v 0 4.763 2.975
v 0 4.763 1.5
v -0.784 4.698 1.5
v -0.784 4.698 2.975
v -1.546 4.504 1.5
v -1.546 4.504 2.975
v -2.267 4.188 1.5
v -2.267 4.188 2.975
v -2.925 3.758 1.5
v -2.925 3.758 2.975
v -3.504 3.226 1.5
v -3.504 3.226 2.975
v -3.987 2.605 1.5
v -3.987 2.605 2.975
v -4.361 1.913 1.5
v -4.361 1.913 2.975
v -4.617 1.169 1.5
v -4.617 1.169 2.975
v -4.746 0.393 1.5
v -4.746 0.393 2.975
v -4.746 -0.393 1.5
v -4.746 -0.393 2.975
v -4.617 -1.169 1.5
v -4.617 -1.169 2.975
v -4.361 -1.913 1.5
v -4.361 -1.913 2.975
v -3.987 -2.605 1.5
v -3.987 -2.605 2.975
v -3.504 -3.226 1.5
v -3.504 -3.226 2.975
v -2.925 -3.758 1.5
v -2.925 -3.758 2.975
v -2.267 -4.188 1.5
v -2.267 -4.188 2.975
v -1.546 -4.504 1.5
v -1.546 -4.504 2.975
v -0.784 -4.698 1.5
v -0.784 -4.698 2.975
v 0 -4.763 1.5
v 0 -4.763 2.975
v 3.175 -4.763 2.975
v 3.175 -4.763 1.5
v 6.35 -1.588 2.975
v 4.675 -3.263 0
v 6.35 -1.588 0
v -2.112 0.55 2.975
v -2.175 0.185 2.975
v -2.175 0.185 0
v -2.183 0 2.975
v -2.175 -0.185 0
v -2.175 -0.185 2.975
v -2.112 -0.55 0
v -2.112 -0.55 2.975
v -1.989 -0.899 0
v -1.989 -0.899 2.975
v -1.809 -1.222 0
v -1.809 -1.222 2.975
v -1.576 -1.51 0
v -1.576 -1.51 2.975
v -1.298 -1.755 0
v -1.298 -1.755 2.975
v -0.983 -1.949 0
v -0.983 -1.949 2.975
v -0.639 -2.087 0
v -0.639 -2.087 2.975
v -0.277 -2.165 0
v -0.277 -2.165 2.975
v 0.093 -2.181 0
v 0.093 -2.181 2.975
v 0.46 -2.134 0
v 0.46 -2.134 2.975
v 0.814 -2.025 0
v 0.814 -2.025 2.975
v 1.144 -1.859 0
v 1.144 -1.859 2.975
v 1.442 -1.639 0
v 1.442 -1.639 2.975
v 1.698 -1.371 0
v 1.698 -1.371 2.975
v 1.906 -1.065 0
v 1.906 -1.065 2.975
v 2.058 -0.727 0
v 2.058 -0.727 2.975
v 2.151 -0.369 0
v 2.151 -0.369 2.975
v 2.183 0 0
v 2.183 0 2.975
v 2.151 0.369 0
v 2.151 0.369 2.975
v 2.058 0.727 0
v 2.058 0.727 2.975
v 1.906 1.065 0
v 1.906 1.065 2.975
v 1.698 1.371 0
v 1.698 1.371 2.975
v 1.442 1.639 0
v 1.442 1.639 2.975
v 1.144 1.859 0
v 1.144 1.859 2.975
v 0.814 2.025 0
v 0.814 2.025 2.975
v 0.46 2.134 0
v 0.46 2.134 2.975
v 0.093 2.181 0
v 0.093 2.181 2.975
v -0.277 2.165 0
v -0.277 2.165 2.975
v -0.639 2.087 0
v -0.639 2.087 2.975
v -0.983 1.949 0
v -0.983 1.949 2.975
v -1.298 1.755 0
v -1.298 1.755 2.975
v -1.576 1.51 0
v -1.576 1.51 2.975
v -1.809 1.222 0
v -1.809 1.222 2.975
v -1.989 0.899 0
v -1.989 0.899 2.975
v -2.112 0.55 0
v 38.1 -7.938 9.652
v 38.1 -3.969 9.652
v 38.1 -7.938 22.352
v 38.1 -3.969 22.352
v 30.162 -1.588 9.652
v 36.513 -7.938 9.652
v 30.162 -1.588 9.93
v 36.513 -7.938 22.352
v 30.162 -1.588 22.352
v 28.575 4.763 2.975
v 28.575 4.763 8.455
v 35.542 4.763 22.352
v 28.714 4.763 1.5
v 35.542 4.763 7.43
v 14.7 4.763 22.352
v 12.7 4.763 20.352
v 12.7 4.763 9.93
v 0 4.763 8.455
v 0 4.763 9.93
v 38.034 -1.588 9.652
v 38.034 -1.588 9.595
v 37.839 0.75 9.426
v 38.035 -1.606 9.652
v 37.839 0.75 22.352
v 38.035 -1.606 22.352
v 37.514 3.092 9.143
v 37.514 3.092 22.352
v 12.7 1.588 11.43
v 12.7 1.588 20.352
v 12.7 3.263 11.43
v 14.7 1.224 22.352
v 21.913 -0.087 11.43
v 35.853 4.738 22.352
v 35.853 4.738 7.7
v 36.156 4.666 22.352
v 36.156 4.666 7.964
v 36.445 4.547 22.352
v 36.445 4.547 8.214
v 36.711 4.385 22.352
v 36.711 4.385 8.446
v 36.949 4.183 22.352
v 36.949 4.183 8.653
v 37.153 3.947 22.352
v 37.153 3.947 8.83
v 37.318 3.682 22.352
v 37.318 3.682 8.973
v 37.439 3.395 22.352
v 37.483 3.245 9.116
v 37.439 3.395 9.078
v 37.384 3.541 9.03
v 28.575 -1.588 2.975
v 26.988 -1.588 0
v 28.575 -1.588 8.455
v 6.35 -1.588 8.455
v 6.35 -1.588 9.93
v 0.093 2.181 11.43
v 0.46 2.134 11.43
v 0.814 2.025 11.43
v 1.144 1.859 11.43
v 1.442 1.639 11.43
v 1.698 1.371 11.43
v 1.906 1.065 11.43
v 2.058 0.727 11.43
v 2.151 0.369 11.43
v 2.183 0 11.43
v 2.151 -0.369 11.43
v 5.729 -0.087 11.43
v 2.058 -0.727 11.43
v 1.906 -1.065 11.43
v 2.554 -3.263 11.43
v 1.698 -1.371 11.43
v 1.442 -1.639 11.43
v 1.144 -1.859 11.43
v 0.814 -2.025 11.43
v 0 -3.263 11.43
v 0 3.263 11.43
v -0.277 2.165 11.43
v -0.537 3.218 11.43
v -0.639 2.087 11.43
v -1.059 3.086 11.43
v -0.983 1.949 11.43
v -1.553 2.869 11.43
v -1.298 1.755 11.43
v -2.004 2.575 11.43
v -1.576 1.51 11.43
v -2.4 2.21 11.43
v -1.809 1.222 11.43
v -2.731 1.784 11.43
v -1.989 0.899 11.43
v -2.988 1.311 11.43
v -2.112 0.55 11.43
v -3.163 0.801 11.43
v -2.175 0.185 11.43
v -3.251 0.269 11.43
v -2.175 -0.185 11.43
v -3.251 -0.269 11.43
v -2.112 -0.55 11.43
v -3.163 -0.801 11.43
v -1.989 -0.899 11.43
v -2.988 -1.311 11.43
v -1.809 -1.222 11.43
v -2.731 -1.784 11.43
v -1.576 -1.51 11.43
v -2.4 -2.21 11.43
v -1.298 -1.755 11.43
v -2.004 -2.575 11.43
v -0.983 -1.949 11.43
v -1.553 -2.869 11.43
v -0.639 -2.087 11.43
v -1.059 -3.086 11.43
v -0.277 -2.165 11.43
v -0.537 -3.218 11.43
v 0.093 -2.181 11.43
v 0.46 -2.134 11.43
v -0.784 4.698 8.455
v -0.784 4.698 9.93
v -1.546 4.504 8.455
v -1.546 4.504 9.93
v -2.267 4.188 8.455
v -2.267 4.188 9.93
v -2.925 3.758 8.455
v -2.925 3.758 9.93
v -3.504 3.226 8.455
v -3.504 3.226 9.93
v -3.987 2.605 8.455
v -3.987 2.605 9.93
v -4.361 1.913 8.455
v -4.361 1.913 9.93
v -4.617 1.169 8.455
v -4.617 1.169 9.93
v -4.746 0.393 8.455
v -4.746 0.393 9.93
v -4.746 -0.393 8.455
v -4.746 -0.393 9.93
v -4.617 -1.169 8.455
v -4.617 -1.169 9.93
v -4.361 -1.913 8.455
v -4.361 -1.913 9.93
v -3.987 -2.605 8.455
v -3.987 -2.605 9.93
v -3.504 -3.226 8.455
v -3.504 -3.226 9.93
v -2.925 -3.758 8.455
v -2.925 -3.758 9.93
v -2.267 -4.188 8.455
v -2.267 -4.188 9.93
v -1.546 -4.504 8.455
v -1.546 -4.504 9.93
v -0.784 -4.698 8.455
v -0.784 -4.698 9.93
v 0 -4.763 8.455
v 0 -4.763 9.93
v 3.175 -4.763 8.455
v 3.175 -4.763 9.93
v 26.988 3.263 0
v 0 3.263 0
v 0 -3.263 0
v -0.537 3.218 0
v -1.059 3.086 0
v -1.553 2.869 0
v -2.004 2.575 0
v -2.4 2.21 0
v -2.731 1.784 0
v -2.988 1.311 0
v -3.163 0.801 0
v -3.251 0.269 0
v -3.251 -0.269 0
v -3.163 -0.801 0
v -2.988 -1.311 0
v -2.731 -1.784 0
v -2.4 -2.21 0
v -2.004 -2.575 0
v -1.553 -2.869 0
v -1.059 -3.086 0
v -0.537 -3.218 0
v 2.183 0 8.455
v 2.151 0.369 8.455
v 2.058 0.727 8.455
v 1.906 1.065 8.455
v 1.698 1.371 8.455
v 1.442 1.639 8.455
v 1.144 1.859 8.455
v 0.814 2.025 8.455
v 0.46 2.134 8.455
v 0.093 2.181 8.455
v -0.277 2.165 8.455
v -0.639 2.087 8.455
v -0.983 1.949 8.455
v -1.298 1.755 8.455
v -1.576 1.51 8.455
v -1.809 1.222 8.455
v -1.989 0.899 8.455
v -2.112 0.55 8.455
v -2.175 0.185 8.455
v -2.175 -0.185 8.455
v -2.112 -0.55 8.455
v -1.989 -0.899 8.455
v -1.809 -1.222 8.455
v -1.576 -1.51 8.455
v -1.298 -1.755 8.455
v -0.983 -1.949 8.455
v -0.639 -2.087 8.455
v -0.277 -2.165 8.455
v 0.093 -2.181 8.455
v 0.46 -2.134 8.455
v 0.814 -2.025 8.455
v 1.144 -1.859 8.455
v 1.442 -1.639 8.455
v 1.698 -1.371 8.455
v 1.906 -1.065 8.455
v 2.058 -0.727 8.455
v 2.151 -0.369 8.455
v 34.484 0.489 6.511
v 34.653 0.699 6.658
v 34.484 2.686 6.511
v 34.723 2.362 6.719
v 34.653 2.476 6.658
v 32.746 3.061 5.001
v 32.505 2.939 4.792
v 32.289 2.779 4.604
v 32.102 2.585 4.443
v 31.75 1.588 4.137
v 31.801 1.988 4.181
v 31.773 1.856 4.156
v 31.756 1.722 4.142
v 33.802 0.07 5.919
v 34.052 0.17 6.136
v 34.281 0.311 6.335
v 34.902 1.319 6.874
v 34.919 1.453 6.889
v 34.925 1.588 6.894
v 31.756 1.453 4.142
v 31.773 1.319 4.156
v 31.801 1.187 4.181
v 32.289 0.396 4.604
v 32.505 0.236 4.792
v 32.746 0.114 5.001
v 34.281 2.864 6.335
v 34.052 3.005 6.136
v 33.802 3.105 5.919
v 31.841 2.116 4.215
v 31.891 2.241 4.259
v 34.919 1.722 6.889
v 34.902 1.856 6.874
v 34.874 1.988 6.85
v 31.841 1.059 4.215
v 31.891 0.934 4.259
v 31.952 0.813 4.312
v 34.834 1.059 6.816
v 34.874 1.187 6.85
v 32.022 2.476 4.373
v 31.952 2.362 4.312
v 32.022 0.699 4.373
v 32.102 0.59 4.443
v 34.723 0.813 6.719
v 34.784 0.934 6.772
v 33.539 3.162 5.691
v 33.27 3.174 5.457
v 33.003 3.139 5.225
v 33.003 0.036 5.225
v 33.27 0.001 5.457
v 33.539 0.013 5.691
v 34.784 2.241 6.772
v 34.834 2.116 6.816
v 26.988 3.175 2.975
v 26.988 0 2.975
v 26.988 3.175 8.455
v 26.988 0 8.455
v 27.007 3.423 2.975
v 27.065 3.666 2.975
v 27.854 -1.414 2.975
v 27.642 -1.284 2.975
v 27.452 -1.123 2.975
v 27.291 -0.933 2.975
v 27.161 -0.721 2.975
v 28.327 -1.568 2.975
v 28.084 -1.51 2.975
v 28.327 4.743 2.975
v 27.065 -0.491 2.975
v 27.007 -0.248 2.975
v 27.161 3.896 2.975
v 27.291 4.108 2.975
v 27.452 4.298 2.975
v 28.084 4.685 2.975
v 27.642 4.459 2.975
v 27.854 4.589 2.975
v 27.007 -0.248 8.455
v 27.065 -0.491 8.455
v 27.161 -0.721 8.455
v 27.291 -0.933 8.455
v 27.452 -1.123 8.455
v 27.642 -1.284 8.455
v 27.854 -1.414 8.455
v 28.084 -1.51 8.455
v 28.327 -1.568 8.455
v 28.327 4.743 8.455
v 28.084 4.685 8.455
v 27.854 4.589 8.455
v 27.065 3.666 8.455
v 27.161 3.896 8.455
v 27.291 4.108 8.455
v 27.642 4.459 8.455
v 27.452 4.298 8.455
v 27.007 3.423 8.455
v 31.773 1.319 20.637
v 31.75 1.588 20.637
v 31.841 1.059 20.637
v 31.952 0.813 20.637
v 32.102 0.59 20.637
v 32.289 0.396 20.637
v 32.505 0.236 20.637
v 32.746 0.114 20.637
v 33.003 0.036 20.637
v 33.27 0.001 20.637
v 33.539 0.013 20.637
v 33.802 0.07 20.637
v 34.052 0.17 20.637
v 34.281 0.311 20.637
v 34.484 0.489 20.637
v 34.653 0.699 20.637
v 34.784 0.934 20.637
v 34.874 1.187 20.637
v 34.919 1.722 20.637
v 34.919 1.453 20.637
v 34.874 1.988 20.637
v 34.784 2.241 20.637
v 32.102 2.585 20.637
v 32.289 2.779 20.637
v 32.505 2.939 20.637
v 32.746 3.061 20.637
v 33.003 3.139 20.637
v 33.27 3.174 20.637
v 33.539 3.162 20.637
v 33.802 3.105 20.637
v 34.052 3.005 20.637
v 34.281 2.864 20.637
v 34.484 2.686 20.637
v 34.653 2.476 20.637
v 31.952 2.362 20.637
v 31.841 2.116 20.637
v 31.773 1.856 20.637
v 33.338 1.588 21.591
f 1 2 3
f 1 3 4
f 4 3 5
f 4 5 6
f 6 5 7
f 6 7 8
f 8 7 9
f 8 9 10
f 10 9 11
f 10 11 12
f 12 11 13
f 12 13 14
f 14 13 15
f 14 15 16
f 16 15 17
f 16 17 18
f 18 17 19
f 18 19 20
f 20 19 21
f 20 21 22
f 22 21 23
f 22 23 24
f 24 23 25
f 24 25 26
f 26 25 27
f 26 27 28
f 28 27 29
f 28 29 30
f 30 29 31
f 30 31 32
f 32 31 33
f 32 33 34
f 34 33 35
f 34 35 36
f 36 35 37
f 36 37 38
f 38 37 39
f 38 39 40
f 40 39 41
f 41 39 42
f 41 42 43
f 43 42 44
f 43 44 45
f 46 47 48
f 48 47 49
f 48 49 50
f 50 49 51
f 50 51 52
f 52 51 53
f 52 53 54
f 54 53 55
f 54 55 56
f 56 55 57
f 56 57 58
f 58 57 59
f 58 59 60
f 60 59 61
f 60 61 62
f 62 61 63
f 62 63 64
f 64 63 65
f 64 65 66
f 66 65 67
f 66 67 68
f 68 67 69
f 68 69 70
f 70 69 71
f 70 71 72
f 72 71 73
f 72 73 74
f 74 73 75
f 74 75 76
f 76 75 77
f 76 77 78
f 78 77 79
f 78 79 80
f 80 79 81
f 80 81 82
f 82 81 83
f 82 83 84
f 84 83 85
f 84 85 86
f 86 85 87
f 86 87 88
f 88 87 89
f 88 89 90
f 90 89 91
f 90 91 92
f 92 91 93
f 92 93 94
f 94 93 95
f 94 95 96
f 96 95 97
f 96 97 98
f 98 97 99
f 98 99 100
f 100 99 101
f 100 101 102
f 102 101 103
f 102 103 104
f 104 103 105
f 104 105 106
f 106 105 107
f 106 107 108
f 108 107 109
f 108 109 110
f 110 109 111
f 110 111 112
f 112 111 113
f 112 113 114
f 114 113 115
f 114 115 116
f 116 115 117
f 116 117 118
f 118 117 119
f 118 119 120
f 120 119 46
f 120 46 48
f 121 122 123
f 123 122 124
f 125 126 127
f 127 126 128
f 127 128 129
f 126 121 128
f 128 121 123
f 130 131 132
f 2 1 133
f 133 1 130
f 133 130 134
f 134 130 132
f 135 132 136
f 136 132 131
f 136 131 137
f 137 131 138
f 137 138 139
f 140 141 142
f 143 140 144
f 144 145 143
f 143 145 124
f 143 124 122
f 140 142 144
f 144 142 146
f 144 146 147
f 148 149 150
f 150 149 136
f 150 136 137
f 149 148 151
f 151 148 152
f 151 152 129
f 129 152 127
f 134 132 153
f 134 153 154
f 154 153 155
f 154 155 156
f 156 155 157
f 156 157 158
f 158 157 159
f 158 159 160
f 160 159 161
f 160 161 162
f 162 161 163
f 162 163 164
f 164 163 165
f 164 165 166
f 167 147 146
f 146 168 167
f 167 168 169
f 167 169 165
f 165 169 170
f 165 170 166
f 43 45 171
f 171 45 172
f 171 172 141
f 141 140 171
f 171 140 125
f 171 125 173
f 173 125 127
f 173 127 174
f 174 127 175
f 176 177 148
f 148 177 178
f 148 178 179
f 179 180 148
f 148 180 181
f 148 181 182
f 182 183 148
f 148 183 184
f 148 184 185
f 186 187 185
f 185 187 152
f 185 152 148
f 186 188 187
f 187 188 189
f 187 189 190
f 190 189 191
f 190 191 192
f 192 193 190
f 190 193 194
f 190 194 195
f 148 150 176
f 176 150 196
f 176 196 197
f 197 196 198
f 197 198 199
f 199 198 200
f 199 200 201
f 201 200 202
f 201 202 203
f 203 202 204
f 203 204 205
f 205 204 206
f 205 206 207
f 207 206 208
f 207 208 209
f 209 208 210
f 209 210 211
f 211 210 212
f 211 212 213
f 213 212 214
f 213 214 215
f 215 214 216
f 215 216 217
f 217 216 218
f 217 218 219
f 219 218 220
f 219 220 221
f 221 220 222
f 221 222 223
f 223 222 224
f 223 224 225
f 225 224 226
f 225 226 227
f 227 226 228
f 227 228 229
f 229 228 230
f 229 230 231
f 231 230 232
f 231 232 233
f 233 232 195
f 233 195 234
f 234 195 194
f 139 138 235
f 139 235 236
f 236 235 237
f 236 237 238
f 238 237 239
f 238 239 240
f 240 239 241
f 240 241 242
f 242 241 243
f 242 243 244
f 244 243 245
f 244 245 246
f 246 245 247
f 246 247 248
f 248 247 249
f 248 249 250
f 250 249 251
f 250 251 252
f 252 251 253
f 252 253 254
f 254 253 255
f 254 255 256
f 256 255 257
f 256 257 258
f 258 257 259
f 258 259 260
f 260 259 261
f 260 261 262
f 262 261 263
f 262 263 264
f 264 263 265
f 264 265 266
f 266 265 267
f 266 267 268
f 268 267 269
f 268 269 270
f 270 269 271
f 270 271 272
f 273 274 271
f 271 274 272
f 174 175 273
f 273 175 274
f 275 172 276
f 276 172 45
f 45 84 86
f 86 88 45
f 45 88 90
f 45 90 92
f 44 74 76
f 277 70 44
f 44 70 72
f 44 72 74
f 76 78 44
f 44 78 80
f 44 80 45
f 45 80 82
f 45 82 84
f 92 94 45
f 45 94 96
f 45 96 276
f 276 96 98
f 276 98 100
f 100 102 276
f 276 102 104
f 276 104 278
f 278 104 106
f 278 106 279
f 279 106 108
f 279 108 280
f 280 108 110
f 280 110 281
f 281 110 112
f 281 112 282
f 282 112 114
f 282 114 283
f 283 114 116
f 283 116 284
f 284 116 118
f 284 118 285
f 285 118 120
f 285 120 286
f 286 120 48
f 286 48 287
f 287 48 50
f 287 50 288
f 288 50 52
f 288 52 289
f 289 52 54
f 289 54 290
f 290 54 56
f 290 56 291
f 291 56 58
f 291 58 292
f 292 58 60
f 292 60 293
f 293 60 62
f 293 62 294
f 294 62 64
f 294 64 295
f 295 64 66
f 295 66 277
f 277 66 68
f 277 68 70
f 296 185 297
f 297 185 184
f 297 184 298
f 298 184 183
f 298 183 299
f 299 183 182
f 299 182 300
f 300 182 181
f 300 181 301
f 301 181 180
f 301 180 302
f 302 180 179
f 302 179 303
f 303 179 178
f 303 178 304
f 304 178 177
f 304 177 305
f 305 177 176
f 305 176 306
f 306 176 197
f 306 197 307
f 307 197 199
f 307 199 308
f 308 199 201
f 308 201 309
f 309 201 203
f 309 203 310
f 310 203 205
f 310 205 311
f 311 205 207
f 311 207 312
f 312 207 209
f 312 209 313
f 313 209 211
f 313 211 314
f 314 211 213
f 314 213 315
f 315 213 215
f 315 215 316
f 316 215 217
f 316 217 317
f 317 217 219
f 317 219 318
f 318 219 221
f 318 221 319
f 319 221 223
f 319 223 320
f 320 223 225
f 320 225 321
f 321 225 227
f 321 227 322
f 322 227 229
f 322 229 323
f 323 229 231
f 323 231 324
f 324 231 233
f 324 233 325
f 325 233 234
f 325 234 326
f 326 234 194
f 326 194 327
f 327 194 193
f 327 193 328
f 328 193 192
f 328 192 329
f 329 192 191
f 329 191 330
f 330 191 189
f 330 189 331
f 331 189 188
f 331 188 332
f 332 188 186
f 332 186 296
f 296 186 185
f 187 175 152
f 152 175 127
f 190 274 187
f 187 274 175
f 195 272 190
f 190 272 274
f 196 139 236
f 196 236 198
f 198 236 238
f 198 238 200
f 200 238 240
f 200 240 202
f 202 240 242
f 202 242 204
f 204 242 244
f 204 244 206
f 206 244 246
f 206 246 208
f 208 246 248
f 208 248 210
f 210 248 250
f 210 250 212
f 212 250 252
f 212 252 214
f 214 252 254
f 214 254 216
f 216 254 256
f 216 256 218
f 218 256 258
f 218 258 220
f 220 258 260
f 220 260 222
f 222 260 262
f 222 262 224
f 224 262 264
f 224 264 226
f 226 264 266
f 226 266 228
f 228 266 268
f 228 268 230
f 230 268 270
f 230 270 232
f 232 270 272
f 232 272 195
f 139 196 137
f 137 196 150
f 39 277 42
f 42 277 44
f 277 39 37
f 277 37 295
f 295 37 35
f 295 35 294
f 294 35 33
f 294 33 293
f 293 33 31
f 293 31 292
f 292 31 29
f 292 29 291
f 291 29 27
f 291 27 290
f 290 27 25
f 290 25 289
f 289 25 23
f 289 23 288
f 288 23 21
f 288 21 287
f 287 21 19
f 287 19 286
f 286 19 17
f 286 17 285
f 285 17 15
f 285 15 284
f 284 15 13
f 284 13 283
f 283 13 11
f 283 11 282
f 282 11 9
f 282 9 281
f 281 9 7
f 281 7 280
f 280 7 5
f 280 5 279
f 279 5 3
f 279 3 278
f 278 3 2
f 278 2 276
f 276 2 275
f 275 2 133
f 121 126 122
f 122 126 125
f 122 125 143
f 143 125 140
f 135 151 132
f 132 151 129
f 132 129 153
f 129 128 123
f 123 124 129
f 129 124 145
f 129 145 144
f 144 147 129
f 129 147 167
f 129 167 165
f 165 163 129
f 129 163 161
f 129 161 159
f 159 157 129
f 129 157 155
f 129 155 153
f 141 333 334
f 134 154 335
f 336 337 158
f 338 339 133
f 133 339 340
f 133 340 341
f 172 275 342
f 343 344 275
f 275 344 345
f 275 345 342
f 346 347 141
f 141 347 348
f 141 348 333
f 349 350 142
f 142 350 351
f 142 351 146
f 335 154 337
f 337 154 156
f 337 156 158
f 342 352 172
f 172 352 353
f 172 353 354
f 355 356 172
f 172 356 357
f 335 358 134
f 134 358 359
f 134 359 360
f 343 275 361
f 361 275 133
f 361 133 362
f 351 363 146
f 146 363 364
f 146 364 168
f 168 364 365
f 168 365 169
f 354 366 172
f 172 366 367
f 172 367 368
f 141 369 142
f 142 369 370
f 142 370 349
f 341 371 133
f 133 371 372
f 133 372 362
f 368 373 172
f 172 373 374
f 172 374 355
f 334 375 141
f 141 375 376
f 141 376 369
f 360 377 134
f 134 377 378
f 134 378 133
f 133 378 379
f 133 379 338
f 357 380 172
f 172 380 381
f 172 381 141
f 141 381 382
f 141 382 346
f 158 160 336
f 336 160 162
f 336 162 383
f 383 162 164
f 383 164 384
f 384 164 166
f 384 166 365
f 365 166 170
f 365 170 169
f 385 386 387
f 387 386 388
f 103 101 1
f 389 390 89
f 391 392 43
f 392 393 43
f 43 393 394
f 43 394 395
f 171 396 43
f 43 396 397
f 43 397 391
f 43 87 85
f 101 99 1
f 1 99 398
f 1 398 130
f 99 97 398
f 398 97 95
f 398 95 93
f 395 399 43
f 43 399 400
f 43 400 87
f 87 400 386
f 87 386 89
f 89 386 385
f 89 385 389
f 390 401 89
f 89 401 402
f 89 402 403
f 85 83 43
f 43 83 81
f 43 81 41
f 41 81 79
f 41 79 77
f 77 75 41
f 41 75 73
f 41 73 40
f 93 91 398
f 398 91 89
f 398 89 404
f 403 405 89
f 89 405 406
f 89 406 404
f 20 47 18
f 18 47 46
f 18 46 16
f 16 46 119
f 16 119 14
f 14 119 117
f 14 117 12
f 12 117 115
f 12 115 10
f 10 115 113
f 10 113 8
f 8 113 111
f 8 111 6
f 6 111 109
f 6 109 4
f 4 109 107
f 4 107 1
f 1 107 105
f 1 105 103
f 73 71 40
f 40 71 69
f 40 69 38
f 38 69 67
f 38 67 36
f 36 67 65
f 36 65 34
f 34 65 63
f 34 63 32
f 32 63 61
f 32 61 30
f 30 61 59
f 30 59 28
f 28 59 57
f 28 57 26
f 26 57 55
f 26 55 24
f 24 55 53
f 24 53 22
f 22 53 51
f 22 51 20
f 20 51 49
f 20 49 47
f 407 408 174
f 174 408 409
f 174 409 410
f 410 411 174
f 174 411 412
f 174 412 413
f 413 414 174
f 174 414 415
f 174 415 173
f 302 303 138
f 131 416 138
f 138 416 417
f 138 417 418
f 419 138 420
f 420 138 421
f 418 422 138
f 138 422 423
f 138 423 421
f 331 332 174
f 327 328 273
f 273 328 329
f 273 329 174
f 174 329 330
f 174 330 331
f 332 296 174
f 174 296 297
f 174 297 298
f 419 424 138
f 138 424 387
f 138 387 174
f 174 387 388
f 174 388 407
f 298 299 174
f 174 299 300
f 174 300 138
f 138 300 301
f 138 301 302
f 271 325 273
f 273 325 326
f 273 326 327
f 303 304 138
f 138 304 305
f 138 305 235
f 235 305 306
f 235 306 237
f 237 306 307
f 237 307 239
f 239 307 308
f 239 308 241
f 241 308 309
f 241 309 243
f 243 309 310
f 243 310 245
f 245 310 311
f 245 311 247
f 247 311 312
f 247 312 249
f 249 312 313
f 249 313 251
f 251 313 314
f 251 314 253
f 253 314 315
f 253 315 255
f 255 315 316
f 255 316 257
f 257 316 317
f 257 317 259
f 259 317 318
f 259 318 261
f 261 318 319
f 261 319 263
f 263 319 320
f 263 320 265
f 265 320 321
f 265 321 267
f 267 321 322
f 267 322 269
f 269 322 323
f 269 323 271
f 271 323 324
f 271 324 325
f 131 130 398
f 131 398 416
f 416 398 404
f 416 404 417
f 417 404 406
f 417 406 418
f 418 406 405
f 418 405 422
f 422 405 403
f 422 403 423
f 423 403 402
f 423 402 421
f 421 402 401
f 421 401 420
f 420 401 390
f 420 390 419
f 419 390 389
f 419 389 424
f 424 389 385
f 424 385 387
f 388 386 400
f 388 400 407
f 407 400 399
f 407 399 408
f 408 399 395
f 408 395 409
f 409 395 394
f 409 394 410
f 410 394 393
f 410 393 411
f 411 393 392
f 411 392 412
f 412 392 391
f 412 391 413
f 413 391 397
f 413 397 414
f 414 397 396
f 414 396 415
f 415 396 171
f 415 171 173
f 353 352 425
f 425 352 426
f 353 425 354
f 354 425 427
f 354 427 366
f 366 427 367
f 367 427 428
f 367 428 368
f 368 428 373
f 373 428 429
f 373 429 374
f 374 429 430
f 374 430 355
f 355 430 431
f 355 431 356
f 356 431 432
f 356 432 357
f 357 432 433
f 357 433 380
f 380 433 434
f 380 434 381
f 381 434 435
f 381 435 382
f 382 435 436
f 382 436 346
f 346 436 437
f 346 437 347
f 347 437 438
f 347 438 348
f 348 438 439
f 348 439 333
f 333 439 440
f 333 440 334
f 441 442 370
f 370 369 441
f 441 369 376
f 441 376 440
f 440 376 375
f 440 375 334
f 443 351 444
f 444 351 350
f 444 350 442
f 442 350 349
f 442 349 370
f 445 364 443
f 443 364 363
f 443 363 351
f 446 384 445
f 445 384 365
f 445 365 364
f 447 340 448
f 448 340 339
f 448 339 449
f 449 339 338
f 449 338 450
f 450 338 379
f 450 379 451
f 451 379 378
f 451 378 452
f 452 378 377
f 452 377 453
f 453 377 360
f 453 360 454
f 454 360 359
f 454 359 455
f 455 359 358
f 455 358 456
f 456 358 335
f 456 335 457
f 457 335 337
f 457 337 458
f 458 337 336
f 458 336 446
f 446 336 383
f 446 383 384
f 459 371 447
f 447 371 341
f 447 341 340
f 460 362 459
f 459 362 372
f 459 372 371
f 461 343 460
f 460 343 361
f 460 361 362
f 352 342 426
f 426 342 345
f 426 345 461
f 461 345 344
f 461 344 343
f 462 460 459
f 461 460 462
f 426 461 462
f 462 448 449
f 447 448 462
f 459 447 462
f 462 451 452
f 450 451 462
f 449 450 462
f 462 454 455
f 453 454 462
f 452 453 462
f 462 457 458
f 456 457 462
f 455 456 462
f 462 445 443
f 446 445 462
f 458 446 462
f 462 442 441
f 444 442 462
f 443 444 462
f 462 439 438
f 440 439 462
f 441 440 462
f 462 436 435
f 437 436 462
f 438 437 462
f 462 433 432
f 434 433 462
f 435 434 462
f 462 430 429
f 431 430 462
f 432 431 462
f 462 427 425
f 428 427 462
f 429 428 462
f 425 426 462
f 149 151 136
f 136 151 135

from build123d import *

# Parameters (mm, degrees)
BOSS_EXTRUDE1_DEPTH              = 11.43
BOSS_EXTRUDE2_DEPTH              = 12.7
SKETCH3_W                        = 11.43
SKETCH3_H                        = 6.35
CUT_EXTRUDE1_DEPTH               = 12.7
F_11_64_0_17188_DIAMETER_HOLE1_D = 4.365752
FILLET5_R                        = 2
BOSS_EXTRUDE3_START              = 1.778
BOSS_EXTRUDE3_DEPTH              = 1.778
CUT_EXTRUDE8_DEPTH               = 41.937805342
CUT_EXTRUDE9_DEPTH               = 1.778
CUT_EXTRUDE10_DEPTH              = 46.962070275
SKETCH16_W                       = 31.75
SKETCH16_H                       = 5.48
CUT_EXTRUDE11_DEPTH              = 46.962070275
FILLET7_R                        = 1.5875
F_1_8_0_125_DIAMETER_HOLE1_D     = 3.175
F_1_8_0_125_DIAMETER_HOLE1_DEPTH = 19.05
F_1_8_0_125_DIAMETER_HOLE1_TIP   = 0.953866233
CHAMFER6_SIZE                    = 2


with BuildPart() as part:
    # Sketch1 → Boss-Extrude1 (new body)
    with BuildSketch(Plane.XY):
        with BuildLine():
            Line((0, -4.7625), (3.175, -4.7625))
            Line((3.175, -4.7625), (6.35, -1.5875))
            Line((6.35, -1.5875), (30.1625, -1.5875))
            Line((30.1625, -1.5875), (36.5125, -7.9375))
            Line((36.5125, -7.9375), (38.1, -7.9375))
            Line((38.1, -7.9375), (38.1, 4.7625))
            Line((38.1, 4.7625), (0, 4.7625))
            ThreePointArc((0, 4.7625), (-4.7625, 0), (0, -4.7625))
        make_face()
    extrude(amount=BOSS_EXTRUDE1_DEPTH)

    # Sketch2 → Boss-Extrude2 (add)
    with BuildSketch(Plane.XY.offset(11.43)):
        with BuildLine():
            ThreePointArc((38.1, -3.96875), (37.874729062, 0.419940487), (37.201284144, 4.7625))
            Line((37.201284144, 4.7625), (12.7, 4.7625))
            Line((12.7, 4.7625), (12.7, 1.5875))
            Line((12.7, 1.5875), (30.1625, -1.5875))
            Line((30.1625, -1.5875), (36.5125, -7.9375))
            Line((36.5125, -7.9375), (38.1, -7.9375))
            Line((38.1, -7.9375), (38.1, -3.96875))
        make_face()
    extrude(amount=BOSS_EXTRUDE2_DEPTH)

    # Sketch3 → Cut-Extrude1 (cut)
    with BuildSketch(Plane(origin=(38.1, 0, 0), x_dir=(0, 0, -1), z_dir=(1, 0, 0))):
        with Locations((-5.715, -4.7625)):
            Rectangle(SKETCH3_W, SKETCH3_H)
    extrude(amount=-CUT_EXTRUDE1_DEPTH, mode=Mode.SUBTRACT)

    # 11/64 (0.17188) Diameter Hole1 (through all)
    with Locations(Plane.XY.offset(11.43)):
        with Locations((0, 0)):
            Hole(F_11_64_0_17188_DIAMETER_HOLE1_D / 2)

    # Fillet5
    fillet5_edges = [part.edges().sort_by_distance(p)[0] for p in [
        (37.201284144, 4.7625, 17.78),
    ]]
    fillet(fillet5_edges, radius=FILLET5_R)

    # Chamfer5
    # the kernel refuses this chamfer: 1.5 mm, written as the material it takes off along each edge
    with BuildSketch(Plane(origin=(0.44731828, -7.49018172, 11.43), x_dir=(0.019442520806014003, -0.019442520806014, -0.9996219169112968), z_dir=(0.7071067811865475, 0.7071067811865477, 0))) as chamfer5_piece_1_section:
        with BuildLine():
            Line((1.543009793, 0), (-0.084820732, 1.54067669))
            Line((-0.084820732, 1.54067669), (-0.11480939, 1.539851814))
            ThreePointArc((-0.11480939, 1.539851814), (-0.051193841, 0.770096744), (-0.029988658, -0.000824876))
            Line((-0.029988658, -0.000824876), (0.000824876, -0.029988658))
            ThreePointArc((0.000824876, -0.029988658), (0.771746497, -0.008783474), (1.543834669, -0.029988658))
            Line((1.543834669, -0.029988658), (1.543009793, 0))
        make_face()
    chamfer5_piece_1 = extrude(amount=12.205177024, mode=Mode.PRIVATE)
    chamfer5_piece_1 = split(chamfer5_piece_1, bisect_by=Plane(origin=(4.06290207, -1.5875, 10.93530956), z_dir=(0, -1, 0)), keep=Keep.TOP, mode=Mode.PRIVATE)
    chamfer5_piece_1 = split(chamfer5_piece_1, bisect_by=Plane(origin=(4.06290207, -4.7625, 10.93530956), z_dir=(0, 1, 0)), keep=Keep.TOP, mode=Mode.PRIVATE)
    add(chamfer5_piece_1, mode=Mode.SUBTRACT)
    with BuildSketch(Plane(origin=(0, -4.7625, 0), x_dir=(0, -0.027495876610586202, 0.9996219169112968), z_dir=(1, 0, 0))) as chamfer5_piece_2_section:
        with BuildLine():
            Line((1.543009793, 0), (-0.084820732, -1.54067669))
            Line((-0.084820732, -1.54067669), (-0.11480939, -1.539851814))
            ThreePointArc((-0.11480939, -1.539851814), (-0.051193841, -0.770096744), (-0.029988658, 0.000824876))
            Line((-0.029988658, 0.000824876), (0.000824876, 0.029988658))
            ThreePointArc((0.000824876, 0.029988658), (0.771746497, 0.008783474), (1.543834669, 0.029988658))
            Line((1.543834669, 0.029988658), (1.543009793, 0))
        make_face()
    chamfer5_piece_2 = extrude(amount=7.032524482, mode=Mode.PRIVATE)
    chamfer5_piece_2 = split(chamfer5_piece_2, bisect_by=Plane(origin=(2.781469351, -5.156030649, 0.473875429), z_dir=(-0.7071067811865477, 0.7071067811865475, 0)), keep=Keep.TOP, mode=Mode.PRIVATE)
    add(chamfer5_piece_2, mode=Mode.SUBTRACT)
    with BuildSketch(Plane(origin=(0, 0, 0), x_dir=(0, 1, 0), z_dir=(1, 0, 0))) as chamfer5_piece_3:
        with BuildLine():
            Line((3.220073593, -0.042426407), (4.804926407, 1.542426407))
            Line((4.804926407, 1.542426407), (4.834926407, 1.542426407))
            ThreePointArc((4.834926407, 1.542426407), (4.7925, 0.771213203), (4.7925, 0))
            Line((4.7925, 0), (4.7625, -0.03))
            ThreePointArc((4.7625, -0.03), (3.991286797, -0.03), (3.220073593, -0.072426407))
            Line((3.220073593, -0.072426407), (3.220073593, -0.042426407))
        make_face()
    revolve(axis=Axis((0, 0, 0), (0, 0, 1)), revolution_arc=180, mode=Mode.SUBTRACT)
    with BuildSketch(Plane(origin=(2.492475518, -1.5875, 11.43), x_dir=(0, -0.027495876610586334, -0.9996219169112968), z_dir=(1, 0, 0))) as chamfer5_piece_4_section:
        with BuildLine():
            Line((1.543009793, 0), (-0.084820732, 1.54067669))
            Line((-0.084820732, 1.54067669), (-0.11480939, 1.539851814))
            ThreePointArc((-0.11480939, 1.539851814), (-0.051193841, 0.770096744), (-0.029988658, -0.000824876))
            Line((-0.029988658, -0.000824876), (0.000824876, -0.029988658))
            ThreePointArc((0.000824876, -0.029988658), (0.771746497, -0.008783474), (1.543834669, -0.029988658))
            Line((1.543834669, -0.029988658), (1.543009793, 0))
        make_face()
    chamfer5_piece_4 = extrude(amount=31.527548964, mode=Mode.PRIVATE)
    chamfer5_piece_4 = split(chamfer5_piece_4, bisect_by=Plane(origin=(17.615702577, 0.693735895, 10.888791896), z_dir=(-0.178885438199983, -0.9838699100999075, 0)), keep=Keep.TOP, mode=Mode.PRIVATE)
    chamfer5_piece_4 = split(chamfer5_piece_4, bisect_by=Plane(origin=(17.279834664, -1.153537628, 11.43), z_dir=(0, 0, -1)), keep=Keep.TOP, mode=Mode.PRIVATE)
    chamfer5_piece_4 = split(chamfer5_piece_4, bisect_by=Plane(origin=(12.031898518, 4.094398518, 10.888791896), z_dir=(0.7071067811865477, -0.7071067811865475, 0)), keep=Keep.TOP, mode=Mode.PRIVATE)
    add(chamfer5_piece_4, mode=Mode.SUBTRACT)
    with BuildSketch(Plane(origin=(12.7, 4.7625, 11.43), x_dir=(0, 0.02749587661058619, -0.9996219169112968), z_dir=(-1, 0, 0))) as chamfer5_piece_5:
        with BuildLine():
            Line((1.543009793, 0), (-0.084820732, 1.54067669))
            Line((-0.084820732, 1.54067669), (-0.11480939, 1.539851814))
            ThreePointArc((-0.11480939, 1.539851814), (-0.051193841, 0.770096744), (-0.029988658, -0.000824876))
            Line((-0.029988658, -0.000824876), (0.000824876, -0.029988658))
            ThreePointArc((0.000824876, -0.029988658), (0.771746497, -0.008783474), (1.543834669, -0.029988658))
            Line((1.543834669, -0.029988658), (1.543009793, 0))
        make_face()
    extrude(amount=12.7, mode=Mode.SUBTRACT)
    with BuildSketch(Plane(origin=(0, 0, 11.43), x_dir=(0, 1, 0), z_dir=(1, 0, 0))) as chamfer5_piece_6:
        with BuildLine():
            Line((4.804926407, -1.542426407), (3.220073593, 0.042426407))
            Line((3.220073593, 0.042426407), (3.220073593, 0.072426407))
            ThreePointArc((3.220073593, 0.072426407), (3.991286797, 0.03), (4.7625, 0.03))
            Line((4.7625, 0.03), (4.7925, 0))
            ThreePointArc((4.7925, 0), (4.7925, -0.771213203), (4.834926407, -1.542426407))
            Line((4.834926407, -1.542426407), (4.804926407, -1.542426407))
        make_face()
    revolve(axis=Axis((0, 0, 11.43), (0, 0, 1)), revolution_arc=180, mode=Mode.SUBTRACT)
    with BuildSketch(Plane(origin=(0, -4.7625, 11.43), x_dir=(0, -0.02749587661058619, -0.9996219169112968), z_dir=(1, 0, 0))) as chamfer5_piece_7_section:
        with BuildLine():
            Line((1.543009793, 0), (-0.084820732, 1.54067669))
            Line((-0.084820732, 1.54067669), (-0.11480939, 1.539851814))
            ThreePointArc((-0.11480939, 1.539851814), (-0.051193841, 0.770096744), (-0.029988658, -0.000824876))
            Line((-0.029988658, -0.000824876), (0.000824876, -0.029988658))
            ThreePointArc((0.000824876, -0.029988658), (0.771746497, -0.008783474), (1.543834669, -0.029988658))
            Line((1.543834669, -0.029988658), (1.543009793, 0))
        make_face()
    chamfer5_piece_7 = extrude(amount=7.032524482, mode=Mode.PRIVATE)
    chamfer5_piece_7 = split(chamfer5_piece_7, bisect_by=Plane(origin=(2.781469351, -5.156030649, 10.956124571), z_dir=(-0.7071067811865477, 0.7071067811865475, 0)), keep=Keep.TOP, mode=Mode.PRIVATE)
    add(chamfer5_piece_7, mode=Mode.SUBTRACT)
    with BuildSketch(Plane(origin=(38.1, 4.7625, 0), x_dir=(0, 0.027495876610586202, 0.9996219169112968), z_dir=(-1, 0, 0))) as chamfer5_piece_8:
        with BuildLine():
            Line((1.543009793, 0), (-0.084820732, -1.54067669))
            Line((-0.084820732, -1.54067669), (-0.11480939, -1.539851814))
            ThreePointArc((-0.11480939, -1.539851814), (-0.051193841, -0.770096744), (-0.029988658, 0.000824876))
            Line((-0.029988658, 0.000824876), (0.000824876, 0.029988658))
            ThreePointArc((0.000824876, 0.029988658), (0.771746497, 0.008783474), (1.543834669, 0.029988658))
            Line((1.543834669, 0.029988658), (1.543009793, 0))
        make_face()
    extrude(amount=38.1, mode=Mode.SUBTRACT)
    with BuildSketch(Plane(origin=(0.44731828, -7.49018172, 11.43), x_dir=(0.019442520806014003, -0.019442520806014, -0.9996219169112968), z_dir=(0.7071067811865475, 0.7071067811865477, 0))) as chamfer5_piece_9a_section:
        with BuildLine():
            Line((1.543009793, 0), (-0.084820732, 1.54067669))
            Line((-0.084820732, 1.54067669), (-0.11480939, 1.539851814))
            ThreePointArc((-0.11480939, 1.539851814), (-0.051193841, 0.770096744), (-0.029988658, -0.000824876))
            Line((-0.029988658, -0.000824876), (0.000824876, -0.029988658))
            ThreePointArc((0.000824876, -0.029988658), (0.771746497, -0.008783474), (1.543834669, -0.029988658))
            Line((1.543834669, -0.029988658), (1.543009793, 0))
        make_face()
    chamfer5_piece_9a = extrude(amount=12.205177024, mode=Mode.PRIVATE)
    chamfer5_piece_9a = split(chamfer5_piece_9a, bisect_by=Plane(origin=(1.331526221, -4.7625, 10.912595192), z_dir=(0, -1, 0)), keep=Keep.TOP, mode=Mode.PRIVATE)
    with BuildSketch(Plane(origin=(0, -4.7625, 11.43), x_dir=(0, -0.02749587661058619, -0.9996219169112968), z_dir=(1, 0, 0))) as chamfer5_piece_9b_section:
        with BuildLine():
            Line((1.543009793, 0), (-0.084820732, 1.54067669))
            Line((-0.084820732, 1.54067669), (-0.11480939, 1.539851814))
            ThreePointArc((-0.11480939, 1.539851814), (-0.051193841, 0.770096744), (-0.029988658, -0.000824876))
            Line((-0.029988658, -0.000824876), (0.000824876, -0.029988658))
            ThreePointArc((0.000824876, -0.029988658), (0.771746497, -0.008783474), (1.543834669, -0.029988658))
            Line((1.543834669, -0.029988658), (1.543009793, 0))
        make_face()
    chamfer5_piece_9b = extrude(amount=7.032524482, mode=Mode.PRIVATE)
    chamfer5_piece_9b = split(chamfer5_piece_9b, bisect_by=Plane(origin=(4.47853281, -3.45896719, 10.912595192), z_dir=(0.7071067811865477, -0.7071067811865475, 0)), keep=Keep.TOP, mode=Mode.PRIVATE)
    chamfer5_piece_9 = chamfer5_piece_9a & chamfer5_piece_9b
    add(chamfer5_piece_9, mode=Mode.SUBTRACT)
    with BuildSketch(Plane(origin=(2.492475518, -1.5875, 11.43), x_dir=(0, -0.027495876610586334, -0.9996219169112968), z_dir=(1, 0, 0))) as chamfer5_piece_10a_section:
        with BuildLine():
            Line((1.543009793, 0), (-0.084820732, 1.54067669))
            Line((-0.084820732, 1.54067669), (-0.11480939, 1.539851814))
            ThreePointArc((-0.11480939, 1.539851814), (-0.051193841, 0.770096744), (-0.029988658, -0.000824876))
            Line((-0.029988658, -0.000824876), (0.000824876, -0.029988658))
            ThreePointArc((0.000824876, -0.029988658), (0.771746497, -0.008783474), (1.543834669, -0.029988658))
            Line((1.543834669, -0.029988658), (1.543009793, 0))
        make_face()
    chamfer5_piece_10a = extrude(amount=31.527548964, mode=Mode.PRIVATE)
    chamfer5_piece_10a = split(chamfer5_piece_10a, bisect_by=Plane(origin=(4.673984199, -1.082007119, 11.43), z_dir=(0, 0, -1)), keep=Keep.TOP, mode=Mode.PRIVATE)
    chamfer5_piece_10a = split(chamfer5_piece_10a, bisect_by=Plane(origin=(5.76473854, -2.17276146, 10.926543667), z_dir=(-0.7071067811865477, 0.7071067811865475, 0)), keep=Keep.TOP, mode=Mode.PRIVATE)
    with BuildSketch(Plane(origin=(0.44731828, -7.49018172, 11.43), x_dir=(0.019442520806014003, -0.019442520806014, -0.9996219169112968), z_dir=(0.7071067811865475, 0.7071067811865477, 0))) as chamfer5_piece_10b_section:
        with BuildLine():
            Line((1.543009793, 0), (-0.084820732, 1.54067669))
            Line((-0.084820732, 1.54067669), (-0.11480939, 1.539851814))
            ThreePointArc((-0.11480939, 1.539851814), (-0.051193841, 0.770096744), (-0.029988658, -0.000824876))
            Line((-0.029988658, -0.000824876), (0.000824876, -0.029988658))
            ThreePointArc((0.000824876, -0.029988658), (0.771746497, -0.008783474), (1.543834669, -0.029988658))
            Line((1.543834669, -0.029988658), (1.543009793, 0))
        make_face()
    chamfer5_piece_10b = extrude(amount=12.205177024, mode=Mode.PRIVATE)
    chamfer5_piece_10b = split(chamfer5_piece_10b, bisect_by=Plane(origin=(7.154321547, -1.5875, 10.952860313), z_dir=(0, 1, 0)), keep=Keep.TOP, mode=Mode.PRIVATE)
    chamfer5_piece_10 = chamfer5_piece_10a & chamfer5_piece_10b
    add(chamfer5_piece_10, mode=Mode.SUBTRACT)
    with BuildSketch(Plane(origin=(2.492475518, -1.5875, 11.43), x_dir=(0, -0.027495876610586334, -0.9996219169112968), z_dir=(1, 0, 0))) as chamfer5_piece_11a_section:
        with BuildLine():
            Line((1.543009793, 0), (-0.084820732, 1.54067669))
            Line((-0.084820732, 1.54067669), (-0.11480939, 1.539851814))
            ThreePointArc((-0.11480939, 1.539851814), (-0.051193841, 0.770096744), (-0.029988658, -0.000824876))
            Line((-0.029988658, -0.000824876), (0.000824876, -0.029988658))
            ThreePointArc((0.000824876, -0.029988658), (0.771746497, -0.008783474), (1.543834669, -0.029988658))
            Line((1.543834669, -0.029988658), (1.543009793, 0))
        make_face()
    chamfer5_piece_11a = extrude(amount=31.527548964, mode=Mode.PRIVATE)
    chamfer5_piece_11a = split(chamfer5_piece_11a, bisect_by=Plane(origin=(4.893812688, -0.642350142, 11.43), z_dir=(0, 0, 1)), keep=Keep.TOP, mode=Mode.PRIVATE)
    chamfer5_piece_11a = split(chamfer5_piece_11a, bisect_by=Plane(origin=(6.094481273, -1.843018727, 11.451821906), z_dir=(-0.7071067811865477, 0.7071067811865475, 0)), keep=Keep.TOP, mode=Mode.PRIVATE)
    with BuildSketch(Plane(origin=(0.44731828, -7.49018172, 11.43), x_dir=(0.019442520806014003, -0.019442520806014, -0.9996219169112968), z_dir=(0.7071067811865475, 0.7071067811865477, 0))) as chamfer5_piece_11b_section:
        with BuildLine():
            Line((1.543009793, 0), (-0.084820732, 1.54067669))
            Line((-0.084820732, 1.54067669), (-0.11480939, 1.539851814))
            ThreePointArc((-0.11480939, 1.539851814), (-0.051193841, 0.770096744), (-0.029988658, -0.000824876))
            Line((-0.029988658, -0.000824876), (0.000824876, -0.029988658))
            ThreePointArc((0.000824876, -0.029988658), (0.771746497, -0.008783474), (1.543834669, -0.029988658))
            Line((1.543834669, -0.029988658), (1.543009793, 0))
        make_face()
    chamfer5_piece_11b = extrude(amount=12.205177024, mode=Mode.PRIVATE)
    chamfer5_piece_11b = split(chamfer5_piece_11b, bisect_by=Plane(origin=(7.154321547, -1.5875, 10.952860313), z_dir=(0, 1, 0)), keep=Keep.TOP, mode=Mode.PRIVATE)
    chamfer5_piece_11 = chamfer5_piece_11a & chamfer5_piece_11b
    add(chamfer5_piece_11, mode=Mode.SUBTRACT)
    with BuildSketch(Plane(origin=(2.492475518, -1.5875, 11.43), x_dir=(0, -0.027495876610586334, -0.9996219169112968), z_dir=(1, 0, 0))) as chamfer5_piece_12a_section:
        with BuildLine():
            Line((1.543009793, 0), (-0.084820732, 1.54067669))
            Line((-0.084820732, 1.54067669), (-0.11480939, 1.539851814))
            ThreePointArc((-0.11480939, 1.539851814), (-0.051193841, 0.770096744), (-0.029988658, -0.000824876))
            Line((-0.029988658, -0.000824876), (0.000824876, -0.029988658))
            ThreePointArc((0.000824876, -0.029988658), (0.771746497, -0.008783474), (1.543834669, -0.029988658))
            Line((1.543834669, -0.029988658), (1.543009793, 0))
        make_face()
    chamfer5_piece_12a = extrude(amount=31.527548964, mode=Mode.PRIVATE)
    chamfer5_piece_12a = split(chamfer5_piece_12a, bisect_by=Plane(origin=(16.694095018, 0.861300906, 11.44990258), z_dir=(-0.178885438199983, -0.9838699100999075, 0)), keep=Keep.TOP, mode=Mode.PRIVATE)
    chamfer5_piece_12a = split(chamfer5_piece_12a, bisect_by=Plane(origin=(16.398943836, -0.762030594, 11.43), z_dir=(0, 0, 1)), keep=Keep.TOP, mode=Mode.PRIVATE)
    chamfer5_piece_12a = split(chamfer5_piece_12a, bisect_by=Plane(origin=(11.787206621, 3.849706621, 11.44990258), z_dir=(0.7071067811865477, -0.7071067811865475, 0)), keep=Keep.TOP, mode=Mode.PRIVATE)
    with BuildSketch(Plane(origin=(0.44731828, -7.49018172, 11.43), x_dir=(0.019442520806014003, -0.019442520806014, -0.9996219169112968), z_dir=(0.7071067811865475, 0.7071067811865477, 0))) as chamfer5_piece_12b_section:
        with BuildLine():
            Line((1.543009793, 0), (-0.084820732, 1.54067669))
            Line((-0.084820732, 1.54067669), (-0.11480939, 1.539851814))
            ThreePointArc((-0.11480939, 1.539851814), (-0.051193841, 0.770096744), (-0.029988658, -0.000824876))
            Line((-0.029988658, -0.000824876), (0.000824876, -0.029988658))
            ThreePointArc((0.000824876, -0.029988658), (0.771746497, -0.008783474), (1.543834669, -0.029988658))
            Line((1.543834669, -0.029988658), (1.543009793, 0))
        make_face()
    chamfer5_piece_12b = extrude(amount=12.205177024, mode=Mode.PRIVATE)
    chamfer5_piece_12b = split(chamfer5_piece_12b, bisect_by=Plane(origin=(7.154321547, -1.5875, 10.952860313), z_dir=(0, 1, 0)), keep=Keep.TOP, mode=Mode.PRIVATE)
    chamfer5_piece_12 = chamfer5_piece_12a & chamfer5_piece_12b
    add(chamfer5_piece_12, mode=Mode.SUBTRACT)

    # Sketch12 → Boss-Extrude3 (add)
    with BuildSketch(Plane(origin=(0, 0, 11.43), x_dir=(-1, 0, 0), z_dir=(0, 0, -1)).offset(BOSS_EXTRUDE3_START)):
        with BuildLine():
            Line((-38.1, -7.9375), (-36.5125, -7.9375))
            Line((-36.5125, -7.9375), (-30.1625, -1.5875))
            Line((-30.1625, -1.5875), (-38.033803049, -1.5875))
            ThreePointArc((-38.033803049, -1.5875), (-38.083447566, -2.777665033), (-38.1, -3.96875))
            Line((-38.1, -3.96875), (-38.1, -7.9375))
        make_face()
    extrude(amount=-BOSS_EXTRUDE3_DEPTH)

    # Sketch14 → Cut-Extrude8 (cut, through all)
    with BuildSketch(Plane.XY.offset(11.43)):
        with BuildLine():
            Line((38.033803049, -1.5875), (38.1, -1.5875))
            Line((38.1, -1.5875), (38.1, 4.7625))
            Line((38.1, 4.7625), (35.541769993, 4.7625))
            ThreePointArc((35.541769993, 4.7625), (36.834264268, 4.288756384), (37.514447631, 3.09195855))
            ThreePointArc((37.514447631, 3.09195855), (37.838425206, 0.759365674), (38.033803049, -1.5875))
        make_face()
    extrude(amount=-CUT_EXTRUDE8_DEPTH, mode=Mode.SUBTRACT)

    # Sketch15 → Cut-Extrude9 (cut)
    with BuildSketch(Plane.XY.offset(24.13)):
        with BuildLine():
            Line((35.541769993, 4.7625), (12.7, 4.7625))
            Line((12.7, 4.7625), (12.7, 1.5875))
            Line((12.7, 1.5875), (30.1625, -1.5875))
            Line((30.1625, -1.5875), (36.5125, -7.9375))
            Line((36.5125, -7.9375), (38.1, -7.9375))
            Line((38.1, -7.9375), (38.1, -3.96875))
            ThreePointArc((38.1, -3.96875), (37.953361071, -0.426276401), (37.514447631, 3.09195855))
            ThreePointArc((37.514447631, 3.09195855), (36.834264268, 4.288756384), (35.541769993, 4.7625))
        make_face()
    extrude(amount=-CUT_EXTRUDE9_DEPTH, mode=Mode.SUBTRACT)

    # Sketch10 → Cut-Extrude10 (cut, through all)
    with BuildSketch(Plane(origin=(0, 4.7625, 0), x_dir=(1, 0, 0), z_dir=(0, 1, 0))):
        Polygon((26.9875, 0), (38.1, 0), (38.1, -9.652), align=None)
    extrude(amount=-CUT_EXTRUDE10_DEPTH, mode=Mode.SUBTRACT)

    # Sketch16 → Cut-Extrude11 (cut, through all)
    with BuildSketch(Plane(origin=(0, 4.7625, 0), x_dir=(1, 0, 0), z_dir=(0, 1, 0))):
        with Locations((11.1125, -5.715)):
            Rectangle(SKETCH16_W, SKETCH16_H)
    extrude(amount=-CUT_EXTRUDE11_DEPTH, mode=Mode.SUBTRACT)

    # Fillet7
    fillet7_edges = [part.edges().sort_by_distance(p)[0] for p in [
        (26.9875, -1.5875, 5.715),
        (26.9875, 4.7625, 5.715),
    ]]
    fillet(fillet7_edges, radius=FILLET7_R)

    # 1/8 (0.125) Diameter Hole1
    with Locations(Plane(origin=(0, 0, 1.5875), x_dir=(-1, 0, 0), z_dir=(0, 0, -1))):
        with Locations((-33.3375, 1.5875)):
            Hole(F_1_8_0_125_DIAMETER_HOLE1_D / 2, depth=F_1_8_0_125_DIAMETER_HOLE1_DEPTH)
            with Locations((0, 0, -(F_1_8_0_125_DIAMETER_HOLE1_DEPTH + F_1_8_0_125_DIAMETER_HOLE1_TIP / 2))):  # 118° drill point
                Cone(0, F_1_8_0_125_DIAMETER_HOLE1_D / 2, F_1_8_0_125_DIAMETER_HOLE1_TIP, mode=Mode.SUBTRACT)

    # Chamfer6
    chamfer6_edges = [part.edges().sort_by_distance(p)[0] for p in [
        (12.7, 3.175, 22.352),
    ]]
    chamfer(chamfer6_edges, length=CHAMFER6_SIZE)


solid = part.part
